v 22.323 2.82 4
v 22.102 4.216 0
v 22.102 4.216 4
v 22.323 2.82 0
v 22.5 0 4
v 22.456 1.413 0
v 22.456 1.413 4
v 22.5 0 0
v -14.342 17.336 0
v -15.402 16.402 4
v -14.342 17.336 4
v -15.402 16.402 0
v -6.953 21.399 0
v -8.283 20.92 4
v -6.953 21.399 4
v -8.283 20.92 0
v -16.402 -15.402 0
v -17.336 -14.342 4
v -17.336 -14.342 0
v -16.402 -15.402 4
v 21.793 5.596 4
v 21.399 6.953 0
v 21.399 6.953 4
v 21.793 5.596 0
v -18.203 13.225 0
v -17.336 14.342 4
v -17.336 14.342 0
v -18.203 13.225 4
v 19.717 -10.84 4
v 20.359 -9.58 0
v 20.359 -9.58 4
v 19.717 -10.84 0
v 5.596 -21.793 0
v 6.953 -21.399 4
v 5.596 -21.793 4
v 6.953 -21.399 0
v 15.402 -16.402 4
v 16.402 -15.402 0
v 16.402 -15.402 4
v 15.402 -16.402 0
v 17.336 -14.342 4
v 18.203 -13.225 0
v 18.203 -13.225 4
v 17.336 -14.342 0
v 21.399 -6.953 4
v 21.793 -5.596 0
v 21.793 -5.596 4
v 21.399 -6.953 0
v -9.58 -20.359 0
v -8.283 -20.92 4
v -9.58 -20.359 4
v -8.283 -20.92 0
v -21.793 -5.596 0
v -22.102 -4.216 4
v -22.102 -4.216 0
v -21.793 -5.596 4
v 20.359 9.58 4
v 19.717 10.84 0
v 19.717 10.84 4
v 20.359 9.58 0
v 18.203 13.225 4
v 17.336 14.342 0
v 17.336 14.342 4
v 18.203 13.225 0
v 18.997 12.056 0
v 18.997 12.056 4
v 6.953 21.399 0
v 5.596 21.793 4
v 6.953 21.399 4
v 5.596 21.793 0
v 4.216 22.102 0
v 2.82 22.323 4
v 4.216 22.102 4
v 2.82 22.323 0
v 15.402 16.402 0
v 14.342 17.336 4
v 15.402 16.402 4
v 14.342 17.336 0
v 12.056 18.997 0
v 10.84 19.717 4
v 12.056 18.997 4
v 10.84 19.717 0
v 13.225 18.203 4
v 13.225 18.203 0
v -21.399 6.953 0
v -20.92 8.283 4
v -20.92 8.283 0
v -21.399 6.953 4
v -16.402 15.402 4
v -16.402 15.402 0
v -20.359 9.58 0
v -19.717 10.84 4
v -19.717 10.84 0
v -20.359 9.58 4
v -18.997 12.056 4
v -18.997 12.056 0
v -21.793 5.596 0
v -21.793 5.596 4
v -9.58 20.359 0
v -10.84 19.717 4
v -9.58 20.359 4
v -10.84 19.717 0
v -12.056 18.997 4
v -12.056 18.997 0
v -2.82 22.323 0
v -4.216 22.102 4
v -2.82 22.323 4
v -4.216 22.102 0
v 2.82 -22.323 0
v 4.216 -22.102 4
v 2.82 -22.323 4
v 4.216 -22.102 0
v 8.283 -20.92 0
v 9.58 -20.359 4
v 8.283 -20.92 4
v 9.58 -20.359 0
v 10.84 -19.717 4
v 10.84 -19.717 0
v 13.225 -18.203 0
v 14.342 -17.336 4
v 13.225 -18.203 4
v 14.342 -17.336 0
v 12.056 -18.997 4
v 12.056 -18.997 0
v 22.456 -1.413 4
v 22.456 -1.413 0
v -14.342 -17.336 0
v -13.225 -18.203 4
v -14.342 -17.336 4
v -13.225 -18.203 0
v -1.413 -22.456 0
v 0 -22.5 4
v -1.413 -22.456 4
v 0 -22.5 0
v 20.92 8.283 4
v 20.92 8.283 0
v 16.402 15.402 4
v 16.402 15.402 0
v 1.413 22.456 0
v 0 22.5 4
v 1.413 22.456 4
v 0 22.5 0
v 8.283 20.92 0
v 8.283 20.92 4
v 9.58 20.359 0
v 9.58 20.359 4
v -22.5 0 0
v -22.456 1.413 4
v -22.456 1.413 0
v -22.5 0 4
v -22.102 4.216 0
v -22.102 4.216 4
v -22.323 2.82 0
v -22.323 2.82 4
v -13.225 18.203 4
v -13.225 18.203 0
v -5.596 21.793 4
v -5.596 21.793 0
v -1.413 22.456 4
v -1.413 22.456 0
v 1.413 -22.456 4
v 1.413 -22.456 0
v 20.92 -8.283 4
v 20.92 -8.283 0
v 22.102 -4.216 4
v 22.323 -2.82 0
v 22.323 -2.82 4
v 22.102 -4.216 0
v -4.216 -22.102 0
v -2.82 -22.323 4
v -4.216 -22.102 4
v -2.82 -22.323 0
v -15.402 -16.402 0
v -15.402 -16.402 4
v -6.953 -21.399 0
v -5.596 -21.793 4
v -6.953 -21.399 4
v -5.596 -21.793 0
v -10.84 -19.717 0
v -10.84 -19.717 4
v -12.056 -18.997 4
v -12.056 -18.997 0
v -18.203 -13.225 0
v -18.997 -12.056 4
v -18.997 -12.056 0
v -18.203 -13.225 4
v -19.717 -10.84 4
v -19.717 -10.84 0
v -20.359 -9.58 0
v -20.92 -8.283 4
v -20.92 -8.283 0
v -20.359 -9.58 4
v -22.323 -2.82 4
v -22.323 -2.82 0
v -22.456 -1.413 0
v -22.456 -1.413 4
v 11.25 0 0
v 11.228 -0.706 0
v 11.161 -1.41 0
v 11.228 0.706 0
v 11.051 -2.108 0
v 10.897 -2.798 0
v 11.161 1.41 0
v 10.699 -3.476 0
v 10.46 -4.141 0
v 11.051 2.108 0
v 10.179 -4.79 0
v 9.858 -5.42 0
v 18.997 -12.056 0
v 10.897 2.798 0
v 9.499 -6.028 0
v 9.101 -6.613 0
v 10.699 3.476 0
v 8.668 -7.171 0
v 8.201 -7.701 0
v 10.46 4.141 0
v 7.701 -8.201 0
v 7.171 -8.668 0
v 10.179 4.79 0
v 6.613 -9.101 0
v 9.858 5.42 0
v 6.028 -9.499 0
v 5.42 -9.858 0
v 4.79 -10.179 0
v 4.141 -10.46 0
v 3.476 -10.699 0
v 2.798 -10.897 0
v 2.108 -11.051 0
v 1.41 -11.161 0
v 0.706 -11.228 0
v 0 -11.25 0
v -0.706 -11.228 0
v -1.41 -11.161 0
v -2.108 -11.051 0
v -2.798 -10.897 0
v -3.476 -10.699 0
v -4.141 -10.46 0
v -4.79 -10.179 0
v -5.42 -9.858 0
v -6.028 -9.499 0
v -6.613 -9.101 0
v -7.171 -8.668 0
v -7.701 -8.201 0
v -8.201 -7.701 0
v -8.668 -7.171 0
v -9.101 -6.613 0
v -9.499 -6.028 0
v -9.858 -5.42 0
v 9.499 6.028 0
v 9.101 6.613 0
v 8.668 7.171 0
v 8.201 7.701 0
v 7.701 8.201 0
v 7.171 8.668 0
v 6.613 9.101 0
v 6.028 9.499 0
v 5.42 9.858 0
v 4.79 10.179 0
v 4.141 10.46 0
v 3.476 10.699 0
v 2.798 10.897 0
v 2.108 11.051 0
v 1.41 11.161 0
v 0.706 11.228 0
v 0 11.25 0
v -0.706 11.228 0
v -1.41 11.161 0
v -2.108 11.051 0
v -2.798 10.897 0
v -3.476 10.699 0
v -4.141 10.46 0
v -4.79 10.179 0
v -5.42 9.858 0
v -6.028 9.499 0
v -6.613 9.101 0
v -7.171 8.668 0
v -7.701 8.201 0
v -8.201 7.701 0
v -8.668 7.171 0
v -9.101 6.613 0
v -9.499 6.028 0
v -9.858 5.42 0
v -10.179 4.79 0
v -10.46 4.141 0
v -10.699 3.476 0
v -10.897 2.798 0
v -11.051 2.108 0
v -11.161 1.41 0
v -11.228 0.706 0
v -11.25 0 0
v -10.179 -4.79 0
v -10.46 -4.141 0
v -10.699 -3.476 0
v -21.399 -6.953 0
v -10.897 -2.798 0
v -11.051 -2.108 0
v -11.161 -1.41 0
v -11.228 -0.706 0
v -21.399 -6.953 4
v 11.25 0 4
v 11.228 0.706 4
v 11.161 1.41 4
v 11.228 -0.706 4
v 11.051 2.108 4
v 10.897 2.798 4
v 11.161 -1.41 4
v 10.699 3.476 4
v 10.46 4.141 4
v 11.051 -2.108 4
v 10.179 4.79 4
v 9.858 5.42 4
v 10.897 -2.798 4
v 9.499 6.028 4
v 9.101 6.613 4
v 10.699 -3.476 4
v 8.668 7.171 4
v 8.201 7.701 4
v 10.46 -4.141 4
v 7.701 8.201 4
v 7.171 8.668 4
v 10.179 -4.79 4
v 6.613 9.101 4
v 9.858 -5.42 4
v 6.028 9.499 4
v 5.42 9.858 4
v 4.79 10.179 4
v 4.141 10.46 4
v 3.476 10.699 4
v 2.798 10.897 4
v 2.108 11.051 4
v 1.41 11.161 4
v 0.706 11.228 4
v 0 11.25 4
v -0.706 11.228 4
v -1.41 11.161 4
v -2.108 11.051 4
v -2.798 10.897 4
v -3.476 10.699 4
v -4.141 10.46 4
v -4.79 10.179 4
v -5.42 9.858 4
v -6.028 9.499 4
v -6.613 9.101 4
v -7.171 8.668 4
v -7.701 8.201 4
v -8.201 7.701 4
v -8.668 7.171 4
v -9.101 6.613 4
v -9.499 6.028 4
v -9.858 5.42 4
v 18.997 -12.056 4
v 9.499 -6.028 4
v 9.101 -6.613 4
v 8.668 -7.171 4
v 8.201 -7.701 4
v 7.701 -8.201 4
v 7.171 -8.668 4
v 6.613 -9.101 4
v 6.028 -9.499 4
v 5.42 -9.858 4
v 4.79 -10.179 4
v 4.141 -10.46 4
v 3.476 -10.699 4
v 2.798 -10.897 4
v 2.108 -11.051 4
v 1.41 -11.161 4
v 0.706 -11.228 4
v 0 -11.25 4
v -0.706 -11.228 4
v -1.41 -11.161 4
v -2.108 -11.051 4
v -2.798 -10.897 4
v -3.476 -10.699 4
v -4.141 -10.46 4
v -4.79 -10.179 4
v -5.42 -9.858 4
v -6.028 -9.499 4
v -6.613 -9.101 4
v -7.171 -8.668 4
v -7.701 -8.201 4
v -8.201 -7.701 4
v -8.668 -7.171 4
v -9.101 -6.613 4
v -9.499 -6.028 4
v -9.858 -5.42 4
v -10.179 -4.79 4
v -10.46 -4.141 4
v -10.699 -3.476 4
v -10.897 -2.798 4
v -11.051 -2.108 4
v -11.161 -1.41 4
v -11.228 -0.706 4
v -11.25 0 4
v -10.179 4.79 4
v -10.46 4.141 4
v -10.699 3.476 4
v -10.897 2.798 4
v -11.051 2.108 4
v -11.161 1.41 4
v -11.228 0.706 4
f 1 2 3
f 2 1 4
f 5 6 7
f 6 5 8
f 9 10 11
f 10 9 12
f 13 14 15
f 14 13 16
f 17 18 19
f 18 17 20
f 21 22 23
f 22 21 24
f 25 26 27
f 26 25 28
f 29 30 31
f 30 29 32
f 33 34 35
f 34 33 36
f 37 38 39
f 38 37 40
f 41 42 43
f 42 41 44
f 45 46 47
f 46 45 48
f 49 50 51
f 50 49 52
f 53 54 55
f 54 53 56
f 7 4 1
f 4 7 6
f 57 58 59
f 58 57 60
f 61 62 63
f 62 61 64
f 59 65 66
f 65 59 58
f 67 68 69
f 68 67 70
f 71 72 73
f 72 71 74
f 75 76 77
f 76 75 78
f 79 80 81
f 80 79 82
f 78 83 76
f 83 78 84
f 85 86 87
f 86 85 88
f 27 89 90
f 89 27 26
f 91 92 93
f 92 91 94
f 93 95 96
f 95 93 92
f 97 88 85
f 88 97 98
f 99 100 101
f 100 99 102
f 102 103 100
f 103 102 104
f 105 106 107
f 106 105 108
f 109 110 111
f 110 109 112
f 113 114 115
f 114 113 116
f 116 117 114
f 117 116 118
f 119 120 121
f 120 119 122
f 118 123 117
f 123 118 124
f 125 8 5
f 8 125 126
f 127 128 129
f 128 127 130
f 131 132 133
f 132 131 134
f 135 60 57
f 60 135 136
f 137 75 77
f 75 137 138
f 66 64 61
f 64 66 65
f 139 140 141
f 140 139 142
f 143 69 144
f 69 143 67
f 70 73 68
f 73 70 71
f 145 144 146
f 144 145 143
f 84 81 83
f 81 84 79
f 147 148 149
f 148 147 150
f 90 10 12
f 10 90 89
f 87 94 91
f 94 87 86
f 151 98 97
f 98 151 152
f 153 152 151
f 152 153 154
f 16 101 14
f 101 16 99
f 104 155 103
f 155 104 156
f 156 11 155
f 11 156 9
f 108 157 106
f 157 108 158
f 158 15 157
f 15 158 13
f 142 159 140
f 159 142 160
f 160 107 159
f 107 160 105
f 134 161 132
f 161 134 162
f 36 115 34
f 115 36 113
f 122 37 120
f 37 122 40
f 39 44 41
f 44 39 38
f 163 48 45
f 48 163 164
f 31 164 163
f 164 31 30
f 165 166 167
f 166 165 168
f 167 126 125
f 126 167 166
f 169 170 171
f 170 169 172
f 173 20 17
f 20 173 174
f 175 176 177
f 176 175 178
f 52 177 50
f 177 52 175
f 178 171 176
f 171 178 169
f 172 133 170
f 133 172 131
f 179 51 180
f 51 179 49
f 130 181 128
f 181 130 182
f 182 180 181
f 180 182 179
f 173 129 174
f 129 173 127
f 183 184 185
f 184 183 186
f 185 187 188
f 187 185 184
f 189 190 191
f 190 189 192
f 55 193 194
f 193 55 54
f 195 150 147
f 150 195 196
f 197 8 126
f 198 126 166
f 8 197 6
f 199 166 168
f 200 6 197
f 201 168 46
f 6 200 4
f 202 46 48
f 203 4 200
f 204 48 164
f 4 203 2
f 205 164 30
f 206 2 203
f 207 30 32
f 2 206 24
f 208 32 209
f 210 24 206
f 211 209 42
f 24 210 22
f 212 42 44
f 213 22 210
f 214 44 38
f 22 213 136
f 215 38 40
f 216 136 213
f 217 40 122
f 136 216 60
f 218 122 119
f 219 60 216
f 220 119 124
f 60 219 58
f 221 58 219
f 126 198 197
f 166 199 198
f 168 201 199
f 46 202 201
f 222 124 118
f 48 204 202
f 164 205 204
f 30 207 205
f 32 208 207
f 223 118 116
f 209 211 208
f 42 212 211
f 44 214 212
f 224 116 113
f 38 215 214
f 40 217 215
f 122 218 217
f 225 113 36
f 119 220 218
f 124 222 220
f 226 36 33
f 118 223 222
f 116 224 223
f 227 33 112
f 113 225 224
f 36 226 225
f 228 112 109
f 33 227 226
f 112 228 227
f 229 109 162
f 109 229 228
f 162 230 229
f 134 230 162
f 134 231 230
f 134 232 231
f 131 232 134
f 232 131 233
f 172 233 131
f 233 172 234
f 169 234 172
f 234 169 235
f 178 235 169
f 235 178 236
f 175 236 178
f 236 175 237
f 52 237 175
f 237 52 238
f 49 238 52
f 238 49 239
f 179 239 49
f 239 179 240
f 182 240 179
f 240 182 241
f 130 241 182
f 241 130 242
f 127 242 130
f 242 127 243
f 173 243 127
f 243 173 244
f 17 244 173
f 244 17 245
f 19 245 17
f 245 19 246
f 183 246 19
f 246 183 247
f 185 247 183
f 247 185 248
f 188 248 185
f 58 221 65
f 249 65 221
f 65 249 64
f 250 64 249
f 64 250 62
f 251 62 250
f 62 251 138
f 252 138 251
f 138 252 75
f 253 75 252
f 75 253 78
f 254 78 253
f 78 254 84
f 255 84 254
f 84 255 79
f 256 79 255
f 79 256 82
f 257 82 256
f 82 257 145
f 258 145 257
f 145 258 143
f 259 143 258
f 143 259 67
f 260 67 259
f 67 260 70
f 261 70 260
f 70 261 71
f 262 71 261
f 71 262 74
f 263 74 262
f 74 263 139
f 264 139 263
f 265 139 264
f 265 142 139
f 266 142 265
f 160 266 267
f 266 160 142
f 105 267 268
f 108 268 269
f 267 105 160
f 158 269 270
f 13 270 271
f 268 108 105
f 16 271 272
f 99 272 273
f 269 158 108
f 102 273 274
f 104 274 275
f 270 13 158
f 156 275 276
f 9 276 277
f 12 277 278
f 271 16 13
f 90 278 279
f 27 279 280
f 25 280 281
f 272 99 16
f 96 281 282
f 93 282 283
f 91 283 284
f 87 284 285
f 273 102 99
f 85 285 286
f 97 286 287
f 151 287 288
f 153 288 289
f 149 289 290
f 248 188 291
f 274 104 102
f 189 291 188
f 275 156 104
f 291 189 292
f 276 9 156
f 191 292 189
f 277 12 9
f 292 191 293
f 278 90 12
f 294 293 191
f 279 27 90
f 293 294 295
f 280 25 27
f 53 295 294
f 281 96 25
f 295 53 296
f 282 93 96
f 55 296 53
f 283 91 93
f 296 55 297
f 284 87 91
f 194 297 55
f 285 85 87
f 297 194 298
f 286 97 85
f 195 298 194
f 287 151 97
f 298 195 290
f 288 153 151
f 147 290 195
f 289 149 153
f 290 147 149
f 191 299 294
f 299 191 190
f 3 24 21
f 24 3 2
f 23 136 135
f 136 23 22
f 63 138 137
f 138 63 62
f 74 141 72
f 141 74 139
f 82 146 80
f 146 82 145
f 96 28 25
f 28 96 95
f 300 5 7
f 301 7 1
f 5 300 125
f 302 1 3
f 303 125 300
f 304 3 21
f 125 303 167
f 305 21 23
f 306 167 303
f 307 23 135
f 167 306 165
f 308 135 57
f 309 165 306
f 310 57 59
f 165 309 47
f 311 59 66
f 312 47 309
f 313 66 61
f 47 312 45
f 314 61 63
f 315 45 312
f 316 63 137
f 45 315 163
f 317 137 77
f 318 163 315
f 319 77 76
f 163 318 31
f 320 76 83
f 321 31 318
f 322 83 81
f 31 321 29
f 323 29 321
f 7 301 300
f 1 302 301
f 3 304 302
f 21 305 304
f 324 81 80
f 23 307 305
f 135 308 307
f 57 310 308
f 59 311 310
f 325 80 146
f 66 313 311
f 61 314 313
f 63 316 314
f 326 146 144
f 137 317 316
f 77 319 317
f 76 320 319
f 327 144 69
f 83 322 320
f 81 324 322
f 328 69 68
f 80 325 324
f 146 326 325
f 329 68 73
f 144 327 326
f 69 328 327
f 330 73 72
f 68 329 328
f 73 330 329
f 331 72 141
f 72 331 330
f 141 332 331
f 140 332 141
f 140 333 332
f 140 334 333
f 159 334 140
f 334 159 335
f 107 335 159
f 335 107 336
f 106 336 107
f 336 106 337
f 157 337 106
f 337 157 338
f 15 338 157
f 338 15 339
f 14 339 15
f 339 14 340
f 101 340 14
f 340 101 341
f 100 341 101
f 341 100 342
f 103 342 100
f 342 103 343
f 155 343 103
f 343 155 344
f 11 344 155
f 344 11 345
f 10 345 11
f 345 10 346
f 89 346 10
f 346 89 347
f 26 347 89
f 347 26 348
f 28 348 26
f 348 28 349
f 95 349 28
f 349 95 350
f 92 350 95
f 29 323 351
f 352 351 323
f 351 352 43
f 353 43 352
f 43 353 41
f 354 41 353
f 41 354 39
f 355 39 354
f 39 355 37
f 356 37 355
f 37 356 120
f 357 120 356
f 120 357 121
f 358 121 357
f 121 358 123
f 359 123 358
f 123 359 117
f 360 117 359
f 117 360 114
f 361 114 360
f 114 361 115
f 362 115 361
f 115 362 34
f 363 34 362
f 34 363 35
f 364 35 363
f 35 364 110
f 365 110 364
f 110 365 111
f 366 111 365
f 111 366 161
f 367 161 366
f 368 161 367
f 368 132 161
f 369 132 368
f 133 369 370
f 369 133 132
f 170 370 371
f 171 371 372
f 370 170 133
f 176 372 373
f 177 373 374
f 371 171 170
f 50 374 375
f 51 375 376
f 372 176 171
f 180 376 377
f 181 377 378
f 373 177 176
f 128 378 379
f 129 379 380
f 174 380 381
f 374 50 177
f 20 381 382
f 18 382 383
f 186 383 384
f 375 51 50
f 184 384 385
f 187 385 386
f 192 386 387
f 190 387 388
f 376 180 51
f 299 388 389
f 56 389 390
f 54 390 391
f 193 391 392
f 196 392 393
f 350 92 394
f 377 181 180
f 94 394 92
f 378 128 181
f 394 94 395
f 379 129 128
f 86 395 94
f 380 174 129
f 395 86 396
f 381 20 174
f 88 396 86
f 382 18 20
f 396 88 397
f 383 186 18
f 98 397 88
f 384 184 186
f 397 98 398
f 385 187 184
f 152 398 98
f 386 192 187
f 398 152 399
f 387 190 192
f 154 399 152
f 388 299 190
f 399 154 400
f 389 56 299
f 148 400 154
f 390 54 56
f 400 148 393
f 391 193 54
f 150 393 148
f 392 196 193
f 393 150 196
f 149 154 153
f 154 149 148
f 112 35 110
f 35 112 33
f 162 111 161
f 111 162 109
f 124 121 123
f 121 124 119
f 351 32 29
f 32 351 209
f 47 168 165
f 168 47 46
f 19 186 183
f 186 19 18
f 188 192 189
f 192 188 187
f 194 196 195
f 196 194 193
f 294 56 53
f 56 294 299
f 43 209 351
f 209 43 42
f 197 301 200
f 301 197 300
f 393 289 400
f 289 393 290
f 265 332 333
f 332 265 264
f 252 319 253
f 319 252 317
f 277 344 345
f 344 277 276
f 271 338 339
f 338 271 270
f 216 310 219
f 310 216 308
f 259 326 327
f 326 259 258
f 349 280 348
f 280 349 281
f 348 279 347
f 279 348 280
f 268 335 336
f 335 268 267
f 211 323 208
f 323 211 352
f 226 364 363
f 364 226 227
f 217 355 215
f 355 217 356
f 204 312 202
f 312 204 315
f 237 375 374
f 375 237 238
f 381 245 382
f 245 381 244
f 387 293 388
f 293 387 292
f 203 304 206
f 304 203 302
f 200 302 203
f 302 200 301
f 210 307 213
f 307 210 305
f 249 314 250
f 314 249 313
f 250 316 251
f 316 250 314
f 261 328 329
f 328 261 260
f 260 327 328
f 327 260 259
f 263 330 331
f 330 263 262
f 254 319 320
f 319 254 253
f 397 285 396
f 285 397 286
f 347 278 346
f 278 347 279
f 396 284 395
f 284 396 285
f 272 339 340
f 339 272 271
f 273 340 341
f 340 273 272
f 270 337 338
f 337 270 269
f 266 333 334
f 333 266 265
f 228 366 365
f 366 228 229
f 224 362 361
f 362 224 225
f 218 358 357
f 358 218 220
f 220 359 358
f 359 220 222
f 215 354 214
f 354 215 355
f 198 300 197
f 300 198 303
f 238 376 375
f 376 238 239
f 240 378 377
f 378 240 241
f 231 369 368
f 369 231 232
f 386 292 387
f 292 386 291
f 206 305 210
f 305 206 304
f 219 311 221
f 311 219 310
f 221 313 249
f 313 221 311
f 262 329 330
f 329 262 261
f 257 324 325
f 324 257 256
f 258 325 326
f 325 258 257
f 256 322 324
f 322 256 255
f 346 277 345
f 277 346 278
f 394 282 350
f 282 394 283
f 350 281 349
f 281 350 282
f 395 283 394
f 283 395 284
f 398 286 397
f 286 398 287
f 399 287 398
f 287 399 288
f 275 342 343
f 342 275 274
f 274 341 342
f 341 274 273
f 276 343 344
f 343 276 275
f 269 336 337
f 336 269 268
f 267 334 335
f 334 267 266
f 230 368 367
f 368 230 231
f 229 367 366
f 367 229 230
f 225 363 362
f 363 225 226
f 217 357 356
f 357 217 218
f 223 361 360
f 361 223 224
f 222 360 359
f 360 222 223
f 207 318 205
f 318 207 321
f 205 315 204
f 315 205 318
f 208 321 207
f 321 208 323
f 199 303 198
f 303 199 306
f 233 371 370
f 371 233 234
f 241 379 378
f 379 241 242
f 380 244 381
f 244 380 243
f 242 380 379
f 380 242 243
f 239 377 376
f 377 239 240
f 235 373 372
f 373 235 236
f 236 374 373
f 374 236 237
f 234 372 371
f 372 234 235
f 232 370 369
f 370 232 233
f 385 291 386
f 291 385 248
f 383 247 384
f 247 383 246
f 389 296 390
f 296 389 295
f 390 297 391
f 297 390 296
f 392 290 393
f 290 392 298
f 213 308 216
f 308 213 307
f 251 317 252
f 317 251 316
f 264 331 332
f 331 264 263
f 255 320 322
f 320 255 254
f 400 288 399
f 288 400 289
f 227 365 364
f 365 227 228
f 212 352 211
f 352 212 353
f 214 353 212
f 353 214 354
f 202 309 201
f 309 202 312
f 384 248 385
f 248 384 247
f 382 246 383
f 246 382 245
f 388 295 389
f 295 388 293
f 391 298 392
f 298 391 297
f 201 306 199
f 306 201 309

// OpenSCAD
$fn = 100;

diameter = 45;
height = 4;

difference() {
    cylinder(d=diameter, h=height);
    translate([0,0,-0.01])
    cylinder(d=diameter/2, h=height+0.02);
}
